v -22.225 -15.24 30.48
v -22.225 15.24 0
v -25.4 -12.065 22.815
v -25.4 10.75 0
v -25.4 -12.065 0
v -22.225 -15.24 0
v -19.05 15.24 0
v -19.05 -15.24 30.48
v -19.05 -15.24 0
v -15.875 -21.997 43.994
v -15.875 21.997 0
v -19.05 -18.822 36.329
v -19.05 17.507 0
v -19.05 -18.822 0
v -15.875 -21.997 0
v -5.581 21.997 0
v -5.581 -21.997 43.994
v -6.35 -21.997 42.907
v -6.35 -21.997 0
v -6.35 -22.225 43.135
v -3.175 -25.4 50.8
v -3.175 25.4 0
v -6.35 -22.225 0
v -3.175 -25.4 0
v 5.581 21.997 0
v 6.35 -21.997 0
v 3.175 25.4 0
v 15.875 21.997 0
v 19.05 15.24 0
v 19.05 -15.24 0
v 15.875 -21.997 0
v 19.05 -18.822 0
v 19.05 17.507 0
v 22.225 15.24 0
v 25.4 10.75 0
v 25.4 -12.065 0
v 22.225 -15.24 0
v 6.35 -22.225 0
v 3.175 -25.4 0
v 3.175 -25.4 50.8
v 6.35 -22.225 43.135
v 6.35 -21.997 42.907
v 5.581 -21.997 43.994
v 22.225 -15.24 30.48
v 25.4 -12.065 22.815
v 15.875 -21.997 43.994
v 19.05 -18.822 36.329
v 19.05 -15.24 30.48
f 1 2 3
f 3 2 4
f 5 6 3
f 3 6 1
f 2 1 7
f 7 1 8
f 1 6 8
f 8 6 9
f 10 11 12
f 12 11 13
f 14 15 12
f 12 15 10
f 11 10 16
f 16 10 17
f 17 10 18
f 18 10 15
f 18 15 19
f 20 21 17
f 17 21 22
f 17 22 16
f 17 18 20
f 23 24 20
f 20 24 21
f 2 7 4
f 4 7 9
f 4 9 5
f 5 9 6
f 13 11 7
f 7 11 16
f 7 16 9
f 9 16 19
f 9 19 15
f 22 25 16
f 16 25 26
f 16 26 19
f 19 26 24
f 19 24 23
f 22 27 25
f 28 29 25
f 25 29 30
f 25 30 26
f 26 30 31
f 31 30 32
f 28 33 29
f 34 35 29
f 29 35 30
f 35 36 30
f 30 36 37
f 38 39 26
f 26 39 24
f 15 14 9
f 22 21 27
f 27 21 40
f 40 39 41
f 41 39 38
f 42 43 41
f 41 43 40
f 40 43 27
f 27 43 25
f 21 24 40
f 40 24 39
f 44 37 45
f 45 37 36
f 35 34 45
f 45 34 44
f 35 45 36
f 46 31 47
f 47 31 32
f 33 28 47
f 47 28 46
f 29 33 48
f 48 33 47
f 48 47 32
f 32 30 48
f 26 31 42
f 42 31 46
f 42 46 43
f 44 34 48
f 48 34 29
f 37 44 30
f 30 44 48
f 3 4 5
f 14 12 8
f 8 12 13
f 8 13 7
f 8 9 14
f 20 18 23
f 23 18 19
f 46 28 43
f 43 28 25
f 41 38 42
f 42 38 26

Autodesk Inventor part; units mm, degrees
sketch "Sketch3" plane through (0, 0, 0) normal (0, 0, 1) x (1, 0, 0)
  circle A0 centre (0, 0) radius 25.4
  dimension "d5" = 50.8
ref_plane "Work Plane1" through (12.7, 0, 0) normal (1, 0, 0) x (0, 1, 0)
ref_plane "Work Plane2" through (25.4, 0, 0) normal (1, 0, 0) x (0, 1, 0)
ref_plane "Work Plane4" through (-25.4, 0, 0) normal (1, 0, 0) x (0, 1, 0)
ref_plane "Work Plane3" through (-12.7, 0, 0) normal (1, 0, 0) x (0, 1, 0)
sketch "Sketch4" plane through (25.4, 0, 0) normal (1, 0, 0) x (0, 1, 0)
  line L0 (0, 0) -> (0, 0.0003)
  line L1 (0, 0) -> (0.0003, 0)
  line L2 (0.0003, 0) -> (0, 0.0003)
  dimension "d10" = 0.0003
  dimension "d11" = 0.0003
sketch "Sketch5" plane through (-25.4, 0, 0) normal (1, 0, 0) x (0, 1, 0)
  line L0 (0, 0) -> (0, 0.0003)
  line L1 (0, 0) -> (0.0003, 0)
  line L2 (0.0003, 0) -> (0, 0.0003)
  dimension "d12" = 0.0003
  dimension "d13" = 0.0003
ref_plane "Work Plane5" through (0, 0, 0) normal (1, 0, 0) x (0, 1, 0)
sketch "Sketch6" plane through (-12.7, 0, 0) normal (1, 0, 0) x (0, 1, 0)
  line L0 (0, 0) -> (21.997, 0)
  line L1 (0, 0) -> (-21.997, 0)
  line L2 (-21.997, 0) -> (-21.997, 43.9941)
  line L3 (-21.997, 43.9941) -> (21.997, 0)
  dimension "d15" = 21.9971
  dimension "d16" = 21.9971
  dimension "d17" = 43.9941
sketch "Sketch7" plane through (12.7, 0, 0) normal (1, 0, 0) x (0, 1, 0)
  line L0 (0, 0) -> (21.997, 0)
  line L1 (0, 0) -> (-21.997, 0)
  line L2 (-21.997, 0) -> (-21.997, 43.9941)
  line L3 (-21.997, 43.9941) -> (21.997, 0)
  dimension "d18" = 21.9971
  dimension "d19" = 21.9971
  dimension "d20" = 43.9941
sketch "Sketch8" plane through (0, 0, 0) normal (1, 0, 0) x (0, 1, 0)
  line L0 (0, 0) -> (25.4, 0)
  line L1 (0, 0) -> (-25.4, 0)
  line L2 (-25.4, 0) -> (-25.4, 50.8)
  line L3 (-25.4, 50.8) -> (25.4, 0)
  dimension "d21" = 25.4
  dimension "d22" = 25.4
  dimension "d23" = 50.8
extrude "Extrusion2" add sketch "Sketch8" along normal mid plane 12.7
extrude "Extrusion3" add sketch "Sketch7" along normal mid plane 12.7
extrude "Extrusion4" add sketch "Sketch6" along normal mid plane 12.7
sketch "Sketch9" plane through (19.05, 0, 0) normal (1, 0, 0) x (0, 0, -1)
  line L0 (0, 0) -> (0, 15.24)
  line L1 (0, -21.997) -> (0, 21.997) projected
  line L2 (0, 0) -> (0, -15.24)
  line L3 (0, -15.24) -> (-30.48, -15.24)
  line L4 (-30.48, -15.24) -> (0, 15.24)
  dimension "d40" = 15.24
  dimension "d41" = 15.24
  dimension "d42" = 30.48
sketch "Sketch10" plane through (-19.05, 0, 0) normal (-1, 0, 0) x (0, 0, 1)
  line L0 (0, 0) -> (0, 15.24)
  line L1 (0, -21.997) -> (0, 21.997)
  line L2 (0, 0) -> (0, -15.24)
  line L3 (0, -15.24) -> (-30.48, -15.24)
  line L4 (-30.48, -15.24) -> (0, 15.24)
  line L5 (0, -15.24) -> (30.48, -15.24)
  line L6 (30.48, -15.24) -> (0, 15.24)
  dimension "d43" = 15.24
  dimension "d44" = 15.24
  dimension "d45" = 30.48
extrude "Extrusion5" add sketch "Sketch10" along normal blind 6.35 contours L0 L6 L5 L1
extrude "Extrusion6" add sketch "Sketch9" along normal blind 6.35
chamfer "Chamfer1" distance 3.175 angle 45 12 edges at (19.05, -21.997, 21.997) (25.4, -15.24, 15.24) (25.4, 0, 15.24) (19.05, 0, 21.997) (6.35, -25.4, 25.4) (6.35, 0, 25.4) (-6.35, 0, 25.4) (-6.35, -25.4, 25.4) (-19.05, 0, 21.997) (-19.05, -21.997, 21.997) (-25.4, 0, 15.24) (-25.4, -15.24, 15.24)
properties part number "crossection_3DPrint"
